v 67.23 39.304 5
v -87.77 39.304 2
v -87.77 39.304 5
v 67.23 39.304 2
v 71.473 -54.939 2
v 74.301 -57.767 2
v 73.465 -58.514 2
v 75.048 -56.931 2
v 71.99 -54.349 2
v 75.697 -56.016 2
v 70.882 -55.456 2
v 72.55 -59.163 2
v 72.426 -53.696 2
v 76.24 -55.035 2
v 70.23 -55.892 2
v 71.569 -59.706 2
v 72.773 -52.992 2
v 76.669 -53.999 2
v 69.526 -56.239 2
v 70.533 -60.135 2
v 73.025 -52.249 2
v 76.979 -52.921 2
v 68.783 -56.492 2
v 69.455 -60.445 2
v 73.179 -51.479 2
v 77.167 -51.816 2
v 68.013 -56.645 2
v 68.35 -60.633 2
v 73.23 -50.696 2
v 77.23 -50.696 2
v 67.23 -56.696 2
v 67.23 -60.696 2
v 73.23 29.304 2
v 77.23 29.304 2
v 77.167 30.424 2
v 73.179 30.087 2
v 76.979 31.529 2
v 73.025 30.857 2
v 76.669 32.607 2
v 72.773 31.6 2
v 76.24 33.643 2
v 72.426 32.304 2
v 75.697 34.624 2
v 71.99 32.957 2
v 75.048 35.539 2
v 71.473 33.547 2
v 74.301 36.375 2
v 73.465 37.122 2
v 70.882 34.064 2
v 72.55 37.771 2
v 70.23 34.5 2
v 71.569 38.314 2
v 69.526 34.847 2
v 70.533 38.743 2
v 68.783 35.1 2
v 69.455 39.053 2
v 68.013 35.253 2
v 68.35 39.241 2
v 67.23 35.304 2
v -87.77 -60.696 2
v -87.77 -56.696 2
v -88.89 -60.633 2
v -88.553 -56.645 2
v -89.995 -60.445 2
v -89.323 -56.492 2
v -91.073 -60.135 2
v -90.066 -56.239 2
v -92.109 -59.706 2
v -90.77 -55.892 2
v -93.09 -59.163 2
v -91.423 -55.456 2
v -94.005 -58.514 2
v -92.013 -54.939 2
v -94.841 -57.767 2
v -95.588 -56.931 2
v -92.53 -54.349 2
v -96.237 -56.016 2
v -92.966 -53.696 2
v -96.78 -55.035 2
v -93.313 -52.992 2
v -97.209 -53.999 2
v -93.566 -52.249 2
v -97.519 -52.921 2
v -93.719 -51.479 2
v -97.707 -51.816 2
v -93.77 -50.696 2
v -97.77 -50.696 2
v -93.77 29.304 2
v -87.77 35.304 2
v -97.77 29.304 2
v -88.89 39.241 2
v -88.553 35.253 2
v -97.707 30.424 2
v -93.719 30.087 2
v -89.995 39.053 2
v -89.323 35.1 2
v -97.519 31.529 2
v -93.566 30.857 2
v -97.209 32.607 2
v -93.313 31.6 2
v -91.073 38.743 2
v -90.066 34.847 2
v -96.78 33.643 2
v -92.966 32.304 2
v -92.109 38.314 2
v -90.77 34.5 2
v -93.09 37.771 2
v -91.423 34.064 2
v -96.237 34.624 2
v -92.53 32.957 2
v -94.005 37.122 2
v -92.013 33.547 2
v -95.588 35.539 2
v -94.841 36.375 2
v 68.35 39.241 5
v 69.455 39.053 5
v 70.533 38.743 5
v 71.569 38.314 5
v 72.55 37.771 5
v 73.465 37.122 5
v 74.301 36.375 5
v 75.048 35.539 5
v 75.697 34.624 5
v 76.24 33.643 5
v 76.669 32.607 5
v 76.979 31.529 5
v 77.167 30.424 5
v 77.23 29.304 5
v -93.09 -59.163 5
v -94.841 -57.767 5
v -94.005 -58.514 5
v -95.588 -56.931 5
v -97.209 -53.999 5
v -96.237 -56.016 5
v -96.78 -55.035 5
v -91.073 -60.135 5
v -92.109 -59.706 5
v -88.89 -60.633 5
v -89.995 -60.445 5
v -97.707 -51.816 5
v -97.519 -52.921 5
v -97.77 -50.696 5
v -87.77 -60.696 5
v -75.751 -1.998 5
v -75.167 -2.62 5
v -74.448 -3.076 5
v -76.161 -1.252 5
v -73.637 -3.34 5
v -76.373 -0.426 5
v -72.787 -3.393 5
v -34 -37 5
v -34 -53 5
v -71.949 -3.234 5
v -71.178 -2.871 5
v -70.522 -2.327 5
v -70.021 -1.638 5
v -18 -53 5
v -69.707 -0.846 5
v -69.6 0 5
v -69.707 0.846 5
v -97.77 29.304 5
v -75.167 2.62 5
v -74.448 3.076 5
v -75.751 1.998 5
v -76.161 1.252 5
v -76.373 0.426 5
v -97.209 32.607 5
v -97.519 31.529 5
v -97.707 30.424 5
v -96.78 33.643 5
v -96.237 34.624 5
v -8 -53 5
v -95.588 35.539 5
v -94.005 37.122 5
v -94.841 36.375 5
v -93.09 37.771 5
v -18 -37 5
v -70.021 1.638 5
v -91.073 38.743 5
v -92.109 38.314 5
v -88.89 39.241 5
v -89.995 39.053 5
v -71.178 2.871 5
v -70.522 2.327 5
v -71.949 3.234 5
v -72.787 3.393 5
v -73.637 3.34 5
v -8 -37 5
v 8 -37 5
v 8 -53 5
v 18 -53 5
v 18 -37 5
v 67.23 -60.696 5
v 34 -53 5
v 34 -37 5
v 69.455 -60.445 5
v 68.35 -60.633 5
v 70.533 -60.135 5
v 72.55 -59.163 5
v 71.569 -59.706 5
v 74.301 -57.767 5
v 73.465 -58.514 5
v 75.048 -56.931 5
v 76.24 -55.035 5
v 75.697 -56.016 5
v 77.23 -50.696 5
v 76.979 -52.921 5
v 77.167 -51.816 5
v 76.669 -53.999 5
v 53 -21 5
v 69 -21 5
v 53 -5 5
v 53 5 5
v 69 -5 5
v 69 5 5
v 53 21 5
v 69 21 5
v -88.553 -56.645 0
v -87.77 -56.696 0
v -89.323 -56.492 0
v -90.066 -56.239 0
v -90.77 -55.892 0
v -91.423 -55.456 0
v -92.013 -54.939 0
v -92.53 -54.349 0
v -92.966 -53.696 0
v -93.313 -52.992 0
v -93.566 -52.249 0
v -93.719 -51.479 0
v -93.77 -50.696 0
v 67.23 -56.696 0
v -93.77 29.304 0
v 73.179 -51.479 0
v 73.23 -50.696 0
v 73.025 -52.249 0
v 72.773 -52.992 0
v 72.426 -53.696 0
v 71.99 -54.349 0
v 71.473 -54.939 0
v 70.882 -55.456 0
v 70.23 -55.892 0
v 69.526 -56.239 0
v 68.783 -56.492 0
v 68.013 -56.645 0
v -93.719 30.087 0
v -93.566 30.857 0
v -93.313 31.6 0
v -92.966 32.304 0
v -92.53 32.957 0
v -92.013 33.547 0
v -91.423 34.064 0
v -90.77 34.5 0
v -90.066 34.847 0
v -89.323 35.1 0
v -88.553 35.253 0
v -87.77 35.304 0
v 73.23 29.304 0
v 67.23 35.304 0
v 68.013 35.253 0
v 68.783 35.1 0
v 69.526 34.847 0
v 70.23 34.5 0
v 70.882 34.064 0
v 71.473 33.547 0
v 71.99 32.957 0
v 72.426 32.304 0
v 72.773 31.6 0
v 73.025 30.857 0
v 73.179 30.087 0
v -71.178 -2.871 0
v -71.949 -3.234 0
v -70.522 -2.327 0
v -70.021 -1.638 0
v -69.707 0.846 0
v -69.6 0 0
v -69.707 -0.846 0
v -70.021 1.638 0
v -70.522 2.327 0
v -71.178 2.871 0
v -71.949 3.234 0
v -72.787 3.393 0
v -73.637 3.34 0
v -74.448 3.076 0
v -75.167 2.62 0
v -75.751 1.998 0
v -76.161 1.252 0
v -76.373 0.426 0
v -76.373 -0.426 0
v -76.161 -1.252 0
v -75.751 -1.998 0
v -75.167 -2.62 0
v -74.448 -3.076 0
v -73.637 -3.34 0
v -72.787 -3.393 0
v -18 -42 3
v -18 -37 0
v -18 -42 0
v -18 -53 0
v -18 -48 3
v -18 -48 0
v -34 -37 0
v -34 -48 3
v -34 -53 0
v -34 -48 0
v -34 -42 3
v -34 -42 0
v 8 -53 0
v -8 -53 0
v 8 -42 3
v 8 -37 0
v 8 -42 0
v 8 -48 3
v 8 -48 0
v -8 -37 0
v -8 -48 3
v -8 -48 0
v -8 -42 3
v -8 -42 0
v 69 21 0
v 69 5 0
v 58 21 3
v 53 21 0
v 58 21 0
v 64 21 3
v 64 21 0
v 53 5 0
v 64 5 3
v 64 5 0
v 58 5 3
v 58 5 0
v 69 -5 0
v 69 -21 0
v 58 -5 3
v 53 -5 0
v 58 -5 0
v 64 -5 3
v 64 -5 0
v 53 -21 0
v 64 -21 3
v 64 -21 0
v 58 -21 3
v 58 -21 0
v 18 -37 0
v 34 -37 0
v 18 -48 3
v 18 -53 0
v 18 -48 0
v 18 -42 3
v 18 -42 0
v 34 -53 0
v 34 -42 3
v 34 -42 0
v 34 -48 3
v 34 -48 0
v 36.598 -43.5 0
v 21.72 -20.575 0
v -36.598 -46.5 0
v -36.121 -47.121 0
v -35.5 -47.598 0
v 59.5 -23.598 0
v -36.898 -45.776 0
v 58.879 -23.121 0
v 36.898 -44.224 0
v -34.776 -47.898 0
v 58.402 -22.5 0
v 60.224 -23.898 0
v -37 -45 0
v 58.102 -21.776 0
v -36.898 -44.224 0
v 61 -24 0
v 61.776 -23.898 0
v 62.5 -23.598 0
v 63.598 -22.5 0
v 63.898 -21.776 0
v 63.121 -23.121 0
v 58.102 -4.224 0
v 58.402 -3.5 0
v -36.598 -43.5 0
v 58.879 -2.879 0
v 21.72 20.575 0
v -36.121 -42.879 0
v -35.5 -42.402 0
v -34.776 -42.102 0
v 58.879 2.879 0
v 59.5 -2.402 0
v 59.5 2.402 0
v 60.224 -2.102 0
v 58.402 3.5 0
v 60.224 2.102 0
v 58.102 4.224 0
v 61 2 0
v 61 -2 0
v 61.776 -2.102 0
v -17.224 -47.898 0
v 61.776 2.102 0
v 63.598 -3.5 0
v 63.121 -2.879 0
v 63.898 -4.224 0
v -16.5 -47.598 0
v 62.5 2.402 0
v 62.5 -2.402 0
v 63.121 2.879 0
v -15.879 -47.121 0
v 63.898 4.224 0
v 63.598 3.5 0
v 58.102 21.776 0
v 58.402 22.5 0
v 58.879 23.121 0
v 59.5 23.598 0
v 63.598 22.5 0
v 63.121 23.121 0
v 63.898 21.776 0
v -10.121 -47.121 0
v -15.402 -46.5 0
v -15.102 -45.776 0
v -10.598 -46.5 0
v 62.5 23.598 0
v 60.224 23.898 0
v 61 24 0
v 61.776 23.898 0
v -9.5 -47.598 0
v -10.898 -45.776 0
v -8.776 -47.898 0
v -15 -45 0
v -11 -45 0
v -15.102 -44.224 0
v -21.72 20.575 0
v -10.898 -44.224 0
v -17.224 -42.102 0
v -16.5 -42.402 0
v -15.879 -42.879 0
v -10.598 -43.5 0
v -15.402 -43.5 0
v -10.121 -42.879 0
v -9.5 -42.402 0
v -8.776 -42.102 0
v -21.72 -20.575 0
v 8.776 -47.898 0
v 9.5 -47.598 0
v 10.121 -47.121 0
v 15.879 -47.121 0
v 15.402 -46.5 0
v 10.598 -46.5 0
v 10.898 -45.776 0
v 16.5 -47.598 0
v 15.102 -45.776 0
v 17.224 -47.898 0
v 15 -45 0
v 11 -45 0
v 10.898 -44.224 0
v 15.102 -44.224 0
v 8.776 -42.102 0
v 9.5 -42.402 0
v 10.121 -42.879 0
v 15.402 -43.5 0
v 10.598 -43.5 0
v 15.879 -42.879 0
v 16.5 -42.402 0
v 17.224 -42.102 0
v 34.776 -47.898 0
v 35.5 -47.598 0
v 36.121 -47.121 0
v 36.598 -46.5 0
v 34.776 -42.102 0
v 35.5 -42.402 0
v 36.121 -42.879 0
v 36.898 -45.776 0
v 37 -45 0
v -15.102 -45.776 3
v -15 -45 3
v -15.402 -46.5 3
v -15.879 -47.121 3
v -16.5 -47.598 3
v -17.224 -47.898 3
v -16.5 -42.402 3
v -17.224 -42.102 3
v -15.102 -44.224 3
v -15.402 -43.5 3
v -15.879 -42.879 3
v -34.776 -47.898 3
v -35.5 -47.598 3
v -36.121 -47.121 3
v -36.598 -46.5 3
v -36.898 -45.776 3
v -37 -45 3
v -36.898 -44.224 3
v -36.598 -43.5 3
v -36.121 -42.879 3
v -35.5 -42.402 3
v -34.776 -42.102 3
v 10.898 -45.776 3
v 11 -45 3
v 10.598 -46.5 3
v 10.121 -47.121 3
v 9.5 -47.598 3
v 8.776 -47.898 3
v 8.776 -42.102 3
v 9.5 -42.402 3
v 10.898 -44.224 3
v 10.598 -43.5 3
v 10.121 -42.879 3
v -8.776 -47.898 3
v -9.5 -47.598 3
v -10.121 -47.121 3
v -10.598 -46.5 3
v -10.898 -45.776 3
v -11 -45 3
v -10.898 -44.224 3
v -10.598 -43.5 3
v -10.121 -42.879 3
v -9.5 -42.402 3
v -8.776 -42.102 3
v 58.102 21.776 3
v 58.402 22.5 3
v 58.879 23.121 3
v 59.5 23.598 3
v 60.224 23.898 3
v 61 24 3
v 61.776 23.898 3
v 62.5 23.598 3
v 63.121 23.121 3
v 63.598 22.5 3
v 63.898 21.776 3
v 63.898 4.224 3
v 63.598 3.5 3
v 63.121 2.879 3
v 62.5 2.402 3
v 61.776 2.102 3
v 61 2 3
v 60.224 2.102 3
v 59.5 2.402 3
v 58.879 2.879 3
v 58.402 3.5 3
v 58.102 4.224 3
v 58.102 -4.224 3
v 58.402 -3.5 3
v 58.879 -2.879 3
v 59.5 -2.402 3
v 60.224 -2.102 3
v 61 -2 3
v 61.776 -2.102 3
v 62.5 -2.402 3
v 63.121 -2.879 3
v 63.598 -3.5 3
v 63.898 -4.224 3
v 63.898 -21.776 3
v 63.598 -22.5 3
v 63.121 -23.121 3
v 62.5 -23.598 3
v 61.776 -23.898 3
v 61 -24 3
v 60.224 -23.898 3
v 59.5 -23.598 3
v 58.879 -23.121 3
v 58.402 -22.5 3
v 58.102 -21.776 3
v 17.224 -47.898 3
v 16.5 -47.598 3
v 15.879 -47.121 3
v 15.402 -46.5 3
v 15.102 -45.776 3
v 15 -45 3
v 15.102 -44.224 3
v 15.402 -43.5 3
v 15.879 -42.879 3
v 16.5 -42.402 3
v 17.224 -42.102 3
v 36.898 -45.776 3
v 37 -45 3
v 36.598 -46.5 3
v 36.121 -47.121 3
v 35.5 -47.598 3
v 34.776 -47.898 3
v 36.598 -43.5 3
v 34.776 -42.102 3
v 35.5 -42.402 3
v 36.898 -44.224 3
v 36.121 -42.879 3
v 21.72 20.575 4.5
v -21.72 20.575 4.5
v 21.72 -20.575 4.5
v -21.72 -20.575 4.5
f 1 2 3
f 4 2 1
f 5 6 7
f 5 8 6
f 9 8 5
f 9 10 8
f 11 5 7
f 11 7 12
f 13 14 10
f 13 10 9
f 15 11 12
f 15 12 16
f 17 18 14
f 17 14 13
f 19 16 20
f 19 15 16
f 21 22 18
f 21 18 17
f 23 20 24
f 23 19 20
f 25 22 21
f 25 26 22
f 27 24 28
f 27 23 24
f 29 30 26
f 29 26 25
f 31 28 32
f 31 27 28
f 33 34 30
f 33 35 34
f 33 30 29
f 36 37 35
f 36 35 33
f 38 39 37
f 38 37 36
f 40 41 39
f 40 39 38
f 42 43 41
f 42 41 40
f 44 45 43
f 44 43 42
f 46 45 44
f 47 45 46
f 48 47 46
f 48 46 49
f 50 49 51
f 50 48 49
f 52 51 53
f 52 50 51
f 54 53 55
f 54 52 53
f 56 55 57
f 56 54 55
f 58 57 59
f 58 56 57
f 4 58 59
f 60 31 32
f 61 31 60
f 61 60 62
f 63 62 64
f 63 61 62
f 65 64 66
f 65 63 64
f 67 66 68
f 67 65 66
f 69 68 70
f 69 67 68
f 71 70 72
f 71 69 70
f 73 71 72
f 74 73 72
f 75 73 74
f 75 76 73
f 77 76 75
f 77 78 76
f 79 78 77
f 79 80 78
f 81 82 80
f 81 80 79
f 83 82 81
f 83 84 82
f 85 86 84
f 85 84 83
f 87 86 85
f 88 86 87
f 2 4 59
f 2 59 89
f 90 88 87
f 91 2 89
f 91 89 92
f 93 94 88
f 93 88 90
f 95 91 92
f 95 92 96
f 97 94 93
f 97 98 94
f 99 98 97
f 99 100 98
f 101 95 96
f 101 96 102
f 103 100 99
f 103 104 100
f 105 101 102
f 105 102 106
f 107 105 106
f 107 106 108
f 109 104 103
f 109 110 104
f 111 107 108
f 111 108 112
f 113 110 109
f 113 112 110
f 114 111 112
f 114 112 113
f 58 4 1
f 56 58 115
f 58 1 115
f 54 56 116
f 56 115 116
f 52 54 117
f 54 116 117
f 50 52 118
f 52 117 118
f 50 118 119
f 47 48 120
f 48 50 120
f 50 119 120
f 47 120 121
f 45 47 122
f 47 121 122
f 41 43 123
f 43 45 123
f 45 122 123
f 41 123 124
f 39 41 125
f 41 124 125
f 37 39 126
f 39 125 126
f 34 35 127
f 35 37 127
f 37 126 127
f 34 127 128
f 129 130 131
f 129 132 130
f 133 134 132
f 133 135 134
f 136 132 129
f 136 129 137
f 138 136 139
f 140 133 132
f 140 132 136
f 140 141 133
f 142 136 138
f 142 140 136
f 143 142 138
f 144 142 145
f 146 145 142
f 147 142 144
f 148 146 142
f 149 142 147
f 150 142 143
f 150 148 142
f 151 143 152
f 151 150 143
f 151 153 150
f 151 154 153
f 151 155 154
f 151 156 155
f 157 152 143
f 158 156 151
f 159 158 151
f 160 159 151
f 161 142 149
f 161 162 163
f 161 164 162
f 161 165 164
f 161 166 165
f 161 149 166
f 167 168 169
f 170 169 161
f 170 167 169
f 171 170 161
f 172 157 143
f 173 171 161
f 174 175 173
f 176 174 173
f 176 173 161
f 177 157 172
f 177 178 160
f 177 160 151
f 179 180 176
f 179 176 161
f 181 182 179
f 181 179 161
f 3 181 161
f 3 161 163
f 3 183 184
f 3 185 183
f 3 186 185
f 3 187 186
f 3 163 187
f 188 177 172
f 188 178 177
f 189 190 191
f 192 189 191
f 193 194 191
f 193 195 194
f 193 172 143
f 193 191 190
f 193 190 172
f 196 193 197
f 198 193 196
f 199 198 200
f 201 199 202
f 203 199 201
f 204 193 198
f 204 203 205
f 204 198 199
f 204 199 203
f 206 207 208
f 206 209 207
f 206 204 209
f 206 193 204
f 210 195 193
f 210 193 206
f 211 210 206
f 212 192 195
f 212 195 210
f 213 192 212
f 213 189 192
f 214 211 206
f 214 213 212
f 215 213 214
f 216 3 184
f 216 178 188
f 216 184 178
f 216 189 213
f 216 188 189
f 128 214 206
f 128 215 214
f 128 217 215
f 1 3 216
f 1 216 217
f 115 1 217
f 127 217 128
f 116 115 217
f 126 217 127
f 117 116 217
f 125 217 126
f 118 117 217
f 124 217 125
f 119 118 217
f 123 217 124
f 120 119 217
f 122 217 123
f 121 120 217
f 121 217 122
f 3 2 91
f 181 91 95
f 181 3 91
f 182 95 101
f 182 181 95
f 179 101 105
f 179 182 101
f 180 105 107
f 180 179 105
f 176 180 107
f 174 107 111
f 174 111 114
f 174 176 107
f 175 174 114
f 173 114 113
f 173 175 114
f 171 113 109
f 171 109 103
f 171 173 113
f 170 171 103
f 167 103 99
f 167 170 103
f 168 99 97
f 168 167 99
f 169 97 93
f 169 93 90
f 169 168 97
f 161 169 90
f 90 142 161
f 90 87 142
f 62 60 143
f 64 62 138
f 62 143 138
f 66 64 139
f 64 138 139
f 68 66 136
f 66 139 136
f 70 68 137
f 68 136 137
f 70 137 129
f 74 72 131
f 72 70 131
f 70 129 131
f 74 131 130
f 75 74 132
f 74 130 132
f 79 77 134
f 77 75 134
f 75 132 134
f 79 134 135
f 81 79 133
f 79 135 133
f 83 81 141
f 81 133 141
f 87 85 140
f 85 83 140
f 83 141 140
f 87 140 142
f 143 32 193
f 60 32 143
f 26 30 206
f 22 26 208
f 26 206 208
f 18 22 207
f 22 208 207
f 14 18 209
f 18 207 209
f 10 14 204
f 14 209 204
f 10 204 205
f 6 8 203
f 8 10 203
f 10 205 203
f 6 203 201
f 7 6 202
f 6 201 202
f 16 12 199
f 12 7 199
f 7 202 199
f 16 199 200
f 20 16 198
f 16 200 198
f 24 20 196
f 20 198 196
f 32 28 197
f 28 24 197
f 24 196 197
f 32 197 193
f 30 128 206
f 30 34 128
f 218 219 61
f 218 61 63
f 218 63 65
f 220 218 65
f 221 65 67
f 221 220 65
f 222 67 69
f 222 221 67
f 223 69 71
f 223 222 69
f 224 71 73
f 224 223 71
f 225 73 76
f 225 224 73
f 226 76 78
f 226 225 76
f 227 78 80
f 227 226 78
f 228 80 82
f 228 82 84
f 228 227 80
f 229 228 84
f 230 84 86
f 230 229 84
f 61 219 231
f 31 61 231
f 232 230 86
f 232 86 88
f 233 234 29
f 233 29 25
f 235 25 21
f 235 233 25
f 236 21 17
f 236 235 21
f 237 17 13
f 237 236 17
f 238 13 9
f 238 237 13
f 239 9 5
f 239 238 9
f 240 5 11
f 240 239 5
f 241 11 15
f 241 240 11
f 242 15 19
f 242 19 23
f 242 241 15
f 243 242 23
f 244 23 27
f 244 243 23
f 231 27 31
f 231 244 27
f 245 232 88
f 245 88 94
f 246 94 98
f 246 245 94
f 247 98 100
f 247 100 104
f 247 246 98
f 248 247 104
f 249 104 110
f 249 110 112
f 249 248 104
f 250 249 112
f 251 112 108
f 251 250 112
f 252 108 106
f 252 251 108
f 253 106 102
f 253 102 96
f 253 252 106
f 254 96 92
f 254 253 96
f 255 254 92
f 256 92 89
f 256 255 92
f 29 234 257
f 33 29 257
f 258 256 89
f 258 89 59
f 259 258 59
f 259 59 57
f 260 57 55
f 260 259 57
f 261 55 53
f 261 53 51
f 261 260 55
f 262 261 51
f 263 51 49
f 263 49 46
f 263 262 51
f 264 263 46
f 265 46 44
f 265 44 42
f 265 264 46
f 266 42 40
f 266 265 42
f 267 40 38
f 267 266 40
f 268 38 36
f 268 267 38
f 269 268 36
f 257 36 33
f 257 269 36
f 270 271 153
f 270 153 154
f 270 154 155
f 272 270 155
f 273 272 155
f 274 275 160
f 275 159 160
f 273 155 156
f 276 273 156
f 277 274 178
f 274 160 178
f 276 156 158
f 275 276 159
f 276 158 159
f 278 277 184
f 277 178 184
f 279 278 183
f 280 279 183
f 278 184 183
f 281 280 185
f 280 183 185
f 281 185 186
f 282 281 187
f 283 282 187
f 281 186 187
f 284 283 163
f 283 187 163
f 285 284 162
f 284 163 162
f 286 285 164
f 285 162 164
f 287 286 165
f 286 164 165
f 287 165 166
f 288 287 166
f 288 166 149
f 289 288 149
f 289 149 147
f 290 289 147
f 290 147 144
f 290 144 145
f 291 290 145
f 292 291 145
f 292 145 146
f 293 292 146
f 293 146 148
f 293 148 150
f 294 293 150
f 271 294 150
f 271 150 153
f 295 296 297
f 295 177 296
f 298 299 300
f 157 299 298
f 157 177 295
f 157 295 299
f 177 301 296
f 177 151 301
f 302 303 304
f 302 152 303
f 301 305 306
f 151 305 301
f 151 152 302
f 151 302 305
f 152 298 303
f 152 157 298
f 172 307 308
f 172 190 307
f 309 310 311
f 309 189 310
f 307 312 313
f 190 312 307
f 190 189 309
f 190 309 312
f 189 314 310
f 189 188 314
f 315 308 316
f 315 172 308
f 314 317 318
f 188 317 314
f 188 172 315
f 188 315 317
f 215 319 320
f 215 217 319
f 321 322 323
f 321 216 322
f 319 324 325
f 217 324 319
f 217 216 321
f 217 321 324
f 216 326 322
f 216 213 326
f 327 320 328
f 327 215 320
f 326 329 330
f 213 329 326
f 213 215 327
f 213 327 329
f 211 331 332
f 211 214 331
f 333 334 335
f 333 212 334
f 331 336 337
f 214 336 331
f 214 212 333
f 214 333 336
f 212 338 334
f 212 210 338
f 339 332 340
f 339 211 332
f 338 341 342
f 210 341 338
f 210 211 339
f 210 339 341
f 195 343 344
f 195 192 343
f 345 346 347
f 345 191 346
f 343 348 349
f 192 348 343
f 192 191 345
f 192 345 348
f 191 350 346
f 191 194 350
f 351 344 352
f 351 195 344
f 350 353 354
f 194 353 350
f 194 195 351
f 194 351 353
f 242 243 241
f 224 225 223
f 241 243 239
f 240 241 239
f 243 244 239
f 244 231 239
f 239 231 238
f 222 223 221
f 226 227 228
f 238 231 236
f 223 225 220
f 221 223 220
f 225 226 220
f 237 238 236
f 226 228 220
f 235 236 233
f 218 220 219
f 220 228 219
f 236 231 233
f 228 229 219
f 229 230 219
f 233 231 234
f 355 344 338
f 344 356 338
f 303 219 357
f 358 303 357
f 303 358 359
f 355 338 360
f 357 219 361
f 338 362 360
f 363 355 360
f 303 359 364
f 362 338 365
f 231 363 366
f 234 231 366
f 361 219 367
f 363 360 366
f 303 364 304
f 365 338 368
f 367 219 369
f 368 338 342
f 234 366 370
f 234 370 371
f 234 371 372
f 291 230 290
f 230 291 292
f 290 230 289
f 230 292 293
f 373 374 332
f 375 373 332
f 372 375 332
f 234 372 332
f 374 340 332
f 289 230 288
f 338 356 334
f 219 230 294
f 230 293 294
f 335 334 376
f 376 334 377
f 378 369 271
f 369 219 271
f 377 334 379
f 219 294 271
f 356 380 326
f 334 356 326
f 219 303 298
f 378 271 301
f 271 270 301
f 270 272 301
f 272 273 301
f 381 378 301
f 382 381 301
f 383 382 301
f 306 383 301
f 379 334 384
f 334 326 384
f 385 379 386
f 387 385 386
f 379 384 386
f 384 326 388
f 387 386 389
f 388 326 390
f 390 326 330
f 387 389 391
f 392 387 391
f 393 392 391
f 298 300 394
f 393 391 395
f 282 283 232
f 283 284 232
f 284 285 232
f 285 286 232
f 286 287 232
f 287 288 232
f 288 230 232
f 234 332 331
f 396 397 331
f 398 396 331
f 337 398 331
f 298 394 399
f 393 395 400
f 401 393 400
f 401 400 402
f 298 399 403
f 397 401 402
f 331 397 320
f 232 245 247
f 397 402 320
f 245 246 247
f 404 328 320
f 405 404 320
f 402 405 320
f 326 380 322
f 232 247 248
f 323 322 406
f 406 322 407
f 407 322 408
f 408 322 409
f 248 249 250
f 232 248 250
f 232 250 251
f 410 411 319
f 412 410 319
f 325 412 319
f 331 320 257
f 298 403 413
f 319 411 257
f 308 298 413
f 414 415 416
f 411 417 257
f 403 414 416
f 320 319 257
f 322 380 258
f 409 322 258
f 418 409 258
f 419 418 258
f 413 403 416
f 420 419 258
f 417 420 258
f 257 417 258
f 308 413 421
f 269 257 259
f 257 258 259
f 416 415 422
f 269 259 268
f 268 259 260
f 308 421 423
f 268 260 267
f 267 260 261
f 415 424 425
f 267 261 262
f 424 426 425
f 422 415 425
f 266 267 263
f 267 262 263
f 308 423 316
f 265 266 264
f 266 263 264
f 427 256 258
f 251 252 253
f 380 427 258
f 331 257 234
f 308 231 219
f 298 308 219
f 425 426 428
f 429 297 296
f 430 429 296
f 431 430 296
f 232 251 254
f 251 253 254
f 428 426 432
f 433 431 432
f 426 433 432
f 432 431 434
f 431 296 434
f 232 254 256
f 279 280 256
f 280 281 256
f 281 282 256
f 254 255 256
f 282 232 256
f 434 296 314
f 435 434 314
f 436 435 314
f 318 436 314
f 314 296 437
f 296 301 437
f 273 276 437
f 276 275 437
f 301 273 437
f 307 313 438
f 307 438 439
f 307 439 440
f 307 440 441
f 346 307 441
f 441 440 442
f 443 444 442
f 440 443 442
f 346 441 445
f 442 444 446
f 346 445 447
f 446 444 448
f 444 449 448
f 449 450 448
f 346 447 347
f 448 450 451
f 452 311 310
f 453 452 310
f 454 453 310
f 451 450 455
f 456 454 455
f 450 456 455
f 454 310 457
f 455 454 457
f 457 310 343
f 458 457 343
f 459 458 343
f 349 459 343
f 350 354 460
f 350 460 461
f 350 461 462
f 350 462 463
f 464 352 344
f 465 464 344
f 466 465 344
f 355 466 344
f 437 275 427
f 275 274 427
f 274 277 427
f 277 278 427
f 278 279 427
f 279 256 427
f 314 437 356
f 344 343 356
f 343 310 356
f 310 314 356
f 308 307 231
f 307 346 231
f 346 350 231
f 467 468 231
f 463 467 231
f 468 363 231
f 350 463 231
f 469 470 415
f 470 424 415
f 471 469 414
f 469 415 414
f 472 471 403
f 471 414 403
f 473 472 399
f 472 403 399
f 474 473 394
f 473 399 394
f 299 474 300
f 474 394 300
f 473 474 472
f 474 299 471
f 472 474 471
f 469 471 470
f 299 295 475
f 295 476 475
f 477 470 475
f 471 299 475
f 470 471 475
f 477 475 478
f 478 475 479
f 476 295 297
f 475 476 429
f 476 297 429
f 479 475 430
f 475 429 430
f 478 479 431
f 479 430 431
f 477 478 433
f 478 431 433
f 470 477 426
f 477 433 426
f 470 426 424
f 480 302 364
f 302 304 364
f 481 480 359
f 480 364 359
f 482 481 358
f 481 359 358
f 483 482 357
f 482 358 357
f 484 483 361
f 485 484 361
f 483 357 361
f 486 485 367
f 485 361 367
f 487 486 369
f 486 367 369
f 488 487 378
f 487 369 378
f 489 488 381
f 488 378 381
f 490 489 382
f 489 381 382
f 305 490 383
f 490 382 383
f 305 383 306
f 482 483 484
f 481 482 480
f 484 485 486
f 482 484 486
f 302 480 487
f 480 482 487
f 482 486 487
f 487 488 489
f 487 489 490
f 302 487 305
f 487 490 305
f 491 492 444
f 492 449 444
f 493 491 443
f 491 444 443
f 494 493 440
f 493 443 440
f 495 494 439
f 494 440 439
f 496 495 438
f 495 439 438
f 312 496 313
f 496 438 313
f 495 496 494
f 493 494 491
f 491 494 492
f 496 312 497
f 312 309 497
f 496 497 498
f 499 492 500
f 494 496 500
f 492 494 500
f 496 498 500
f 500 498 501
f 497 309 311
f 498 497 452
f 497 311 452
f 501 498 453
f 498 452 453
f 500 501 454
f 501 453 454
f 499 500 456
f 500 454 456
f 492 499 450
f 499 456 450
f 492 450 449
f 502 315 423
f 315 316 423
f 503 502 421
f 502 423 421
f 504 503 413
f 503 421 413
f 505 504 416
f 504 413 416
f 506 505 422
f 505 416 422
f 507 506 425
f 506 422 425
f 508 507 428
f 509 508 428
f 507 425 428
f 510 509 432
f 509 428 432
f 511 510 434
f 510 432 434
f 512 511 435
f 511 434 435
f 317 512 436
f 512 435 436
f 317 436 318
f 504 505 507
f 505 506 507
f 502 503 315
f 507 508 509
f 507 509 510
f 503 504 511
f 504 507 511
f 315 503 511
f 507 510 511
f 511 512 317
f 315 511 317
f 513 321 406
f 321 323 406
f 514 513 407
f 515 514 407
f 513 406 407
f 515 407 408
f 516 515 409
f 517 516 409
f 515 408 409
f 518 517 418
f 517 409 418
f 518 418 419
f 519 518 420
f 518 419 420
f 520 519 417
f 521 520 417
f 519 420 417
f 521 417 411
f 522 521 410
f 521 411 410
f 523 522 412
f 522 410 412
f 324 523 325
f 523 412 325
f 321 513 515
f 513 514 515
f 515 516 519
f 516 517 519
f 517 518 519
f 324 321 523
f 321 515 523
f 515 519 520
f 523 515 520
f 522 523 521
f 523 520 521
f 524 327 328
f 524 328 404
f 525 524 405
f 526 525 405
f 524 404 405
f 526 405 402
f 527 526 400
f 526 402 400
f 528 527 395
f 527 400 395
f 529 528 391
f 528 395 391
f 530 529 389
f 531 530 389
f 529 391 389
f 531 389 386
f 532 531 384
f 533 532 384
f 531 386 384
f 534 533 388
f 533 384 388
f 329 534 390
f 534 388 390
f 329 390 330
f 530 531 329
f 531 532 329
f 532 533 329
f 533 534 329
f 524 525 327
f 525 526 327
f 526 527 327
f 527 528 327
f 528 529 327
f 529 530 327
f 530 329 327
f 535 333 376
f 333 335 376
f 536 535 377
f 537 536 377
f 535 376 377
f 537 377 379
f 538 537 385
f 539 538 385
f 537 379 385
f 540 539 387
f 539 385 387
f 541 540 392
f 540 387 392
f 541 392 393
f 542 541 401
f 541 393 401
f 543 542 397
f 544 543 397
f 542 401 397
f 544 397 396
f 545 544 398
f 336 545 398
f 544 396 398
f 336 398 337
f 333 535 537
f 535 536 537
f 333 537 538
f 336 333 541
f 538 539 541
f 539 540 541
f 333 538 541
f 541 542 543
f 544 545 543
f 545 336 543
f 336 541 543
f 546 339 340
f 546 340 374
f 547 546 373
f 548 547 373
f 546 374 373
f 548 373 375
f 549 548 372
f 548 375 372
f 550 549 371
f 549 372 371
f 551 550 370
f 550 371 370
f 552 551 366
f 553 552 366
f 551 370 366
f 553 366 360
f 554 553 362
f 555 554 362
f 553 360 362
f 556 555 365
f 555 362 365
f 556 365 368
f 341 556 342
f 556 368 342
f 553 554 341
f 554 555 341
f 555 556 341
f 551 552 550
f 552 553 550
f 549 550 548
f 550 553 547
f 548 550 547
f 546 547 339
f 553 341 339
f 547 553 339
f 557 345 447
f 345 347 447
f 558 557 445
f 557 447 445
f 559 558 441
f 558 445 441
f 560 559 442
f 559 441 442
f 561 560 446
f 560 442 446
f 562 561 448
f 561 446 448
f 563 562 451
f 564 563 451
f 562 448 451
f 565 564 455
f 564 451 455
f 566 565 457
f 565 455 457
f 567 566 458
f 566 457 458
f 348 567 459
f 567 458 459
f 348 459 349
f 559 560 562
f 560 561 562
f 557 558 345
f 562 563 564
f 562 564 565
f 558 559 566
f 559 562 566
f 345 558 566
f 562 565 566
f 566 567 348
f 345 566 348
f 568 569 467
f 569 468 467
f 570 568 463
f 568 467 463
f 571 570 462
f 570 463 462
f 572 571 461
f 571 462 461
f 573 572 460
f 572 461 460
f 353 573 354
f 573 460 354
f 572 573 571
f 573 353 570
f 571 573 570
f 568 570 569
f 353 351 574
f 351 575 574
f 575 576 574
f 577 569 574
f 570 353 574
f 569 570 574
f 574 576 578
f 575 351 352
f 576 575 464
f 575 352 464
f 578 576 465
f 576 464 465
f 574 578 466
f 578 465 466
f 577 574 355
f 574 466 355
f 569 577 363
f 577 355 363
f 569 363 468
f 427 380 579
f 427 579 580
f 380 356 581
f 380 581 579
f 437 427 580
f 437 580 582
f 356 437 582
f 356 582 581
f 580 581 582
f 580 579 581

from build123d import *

# Parameters (mm, degrees)
SKETCH_W        = 175
SKETCH_H        = 100
PAD_DEPTH       = 5
FILLET_R        = 10
SKETCH001_R     = 3.4
SKETCH001_W     = 16
SKETCH001_H     = 16
POCKET_DEPTH    = 5.001
SKETCH002_W     = 189.697797
SKETCH002_H     = 117.830608
POCKET001_DEPTH = 2
SKETCH003_W     = 43.44
SKETCH003_H     = 41.15
POCKET002_DEPTH = 4.5
SKETCH004_R     = 3
POCKET003_DEPTH = 3


with BuildPart() as part:
    # Sketch → Pad (new body)
    with BuildSketch(Plane.XY):
        with Locations((-10.270103, -10.695957)):
            Rectangle(SKETCH_W, SKETCH_H)
    extrude(amount=PAD_DEPTH)

    # Fillet
    fillet_edges = [part.edges().sort_by_distance(p)[0] for p in [
        (-97.770103, -60.695957, 2.5),
        (-97.770103, 39.304043, 2.5),
        (77.229897, -60.695957, 2.5),
        (77.229897, 39.304043, 2.5),
    ]]
    fillet(fillet_edges, radius=FILLET_R)

    # Sketch001 → Pocket (cut, through all)
    with BuildSketch(Plane.XY.offset(5)):
        with Locations((-73, 0)):
            Circle(SKETCH001_R)
        with Locations((-26, -45)):
            Rectangle(SKETCH001_W, SKETCH001_H)
        with Locations((0, -45)):
            Rectangle(SKETCH001_W, SKETCH001_H)
        with Locations((26, -45)):
            Rectangle(SKETCH001_W, SKETCH001_H)
        with Locations((61, 13)):
            Rectangle(SKETCH001_W, SKETCH001_H)
        with Locations((61, -13)):
            Rectangle(SKETCH001_W, SKETCH001_H)
    extrude(amount=-POCKET_DEPTH, mode=Mode.SUBTRACT)

    # Sketch002 → Pocket001 (cut)
    with BuildSketch(Plane(origin=(0, 0, 0), x_dir=(1, 0, 0), z_dir=(0, 0, -1))):
        with Locations((-11.809575, 11.293159)):
            Rectangle(SKETCH002_W, SKETCH002_H)
        with BuildLine():
            Line((-87.770101, 56.695957), (67.229895, 56.695957))
            ThreePointArc((73.229897, 50.695985), (71.472527, 54.938608), (67.229895, 56.695957))
            Line((73.229897, 50.695985), (73.229897, -29.304043))
            ThreePointArc((67.229897, -35.304043), (71.472538, -33.546684), (73.229897, -29.304043))
            Line((-87.770103, -35.304043), (67.229897, -35.304043))
            ThreePointArc((-93.770103, -29.304043), (-92.012744, -33.546684), (-87.770103, -35.304043))
            Line((-93.770103, 50.695985), (-93.770103, -29.304043))
            ThreePointArc((-87.770101, 56.695957), (-92.012733, 54.938608), (-93.770103, 50.695985))
        make_face(mode=Mode.SUBTRACT)
    extrude(amount=-POCKET001_DEPTH, mode=Mode.SUBTRACT)

    # Sketch003 → Pocket002 (cut)
    with BuildSketch(Plane(origin=(0, 0, 0), x_dir=(1, 0, 0), z_dir=(0, 0, -1))):
        Rectangle(SKETCH003_W, SKETCH003_H)
    extrude(amount=-POCKET002_DEPTH, mode=Mode.SUBTRACT)

    # Sketch004 → Pocket003 (cut)
    with BuildSketch(Plane(origin=(0, 0, 0), x_dir=(1, 0, 0), z_dir=(0, 0, -1))):
        with Locations((-34, 45)):
            Circle(SKETCH004_R)
        with Locations((-18, 45)):
            Circle(SKETCH004_R)
        with Locations((-8, 45)):
            Circle(SKETCH004_R)
        with Locations((8, 45)):
            Circle(SKETCH004_R)
        with Locations((18, 45)):
            Circle(SKETCH004_R)
        with Locations((34, 45)):
            Circle(SKETCH004_R)
        with Locations((61, 21)):
            Circle(SKETCH004_R)
        with Locations((61, 5)):
            Circle(SKETCH004_R)
        with Locations((61, -5)):
            Circle(SKETCH004_R)
        with Locations((61, -21)):
            Circle(SKETCH004_R)
    extrude(amount=-POCKET003_DEPTH, mode=Mode.SUBTRACT)


solid = part.part
